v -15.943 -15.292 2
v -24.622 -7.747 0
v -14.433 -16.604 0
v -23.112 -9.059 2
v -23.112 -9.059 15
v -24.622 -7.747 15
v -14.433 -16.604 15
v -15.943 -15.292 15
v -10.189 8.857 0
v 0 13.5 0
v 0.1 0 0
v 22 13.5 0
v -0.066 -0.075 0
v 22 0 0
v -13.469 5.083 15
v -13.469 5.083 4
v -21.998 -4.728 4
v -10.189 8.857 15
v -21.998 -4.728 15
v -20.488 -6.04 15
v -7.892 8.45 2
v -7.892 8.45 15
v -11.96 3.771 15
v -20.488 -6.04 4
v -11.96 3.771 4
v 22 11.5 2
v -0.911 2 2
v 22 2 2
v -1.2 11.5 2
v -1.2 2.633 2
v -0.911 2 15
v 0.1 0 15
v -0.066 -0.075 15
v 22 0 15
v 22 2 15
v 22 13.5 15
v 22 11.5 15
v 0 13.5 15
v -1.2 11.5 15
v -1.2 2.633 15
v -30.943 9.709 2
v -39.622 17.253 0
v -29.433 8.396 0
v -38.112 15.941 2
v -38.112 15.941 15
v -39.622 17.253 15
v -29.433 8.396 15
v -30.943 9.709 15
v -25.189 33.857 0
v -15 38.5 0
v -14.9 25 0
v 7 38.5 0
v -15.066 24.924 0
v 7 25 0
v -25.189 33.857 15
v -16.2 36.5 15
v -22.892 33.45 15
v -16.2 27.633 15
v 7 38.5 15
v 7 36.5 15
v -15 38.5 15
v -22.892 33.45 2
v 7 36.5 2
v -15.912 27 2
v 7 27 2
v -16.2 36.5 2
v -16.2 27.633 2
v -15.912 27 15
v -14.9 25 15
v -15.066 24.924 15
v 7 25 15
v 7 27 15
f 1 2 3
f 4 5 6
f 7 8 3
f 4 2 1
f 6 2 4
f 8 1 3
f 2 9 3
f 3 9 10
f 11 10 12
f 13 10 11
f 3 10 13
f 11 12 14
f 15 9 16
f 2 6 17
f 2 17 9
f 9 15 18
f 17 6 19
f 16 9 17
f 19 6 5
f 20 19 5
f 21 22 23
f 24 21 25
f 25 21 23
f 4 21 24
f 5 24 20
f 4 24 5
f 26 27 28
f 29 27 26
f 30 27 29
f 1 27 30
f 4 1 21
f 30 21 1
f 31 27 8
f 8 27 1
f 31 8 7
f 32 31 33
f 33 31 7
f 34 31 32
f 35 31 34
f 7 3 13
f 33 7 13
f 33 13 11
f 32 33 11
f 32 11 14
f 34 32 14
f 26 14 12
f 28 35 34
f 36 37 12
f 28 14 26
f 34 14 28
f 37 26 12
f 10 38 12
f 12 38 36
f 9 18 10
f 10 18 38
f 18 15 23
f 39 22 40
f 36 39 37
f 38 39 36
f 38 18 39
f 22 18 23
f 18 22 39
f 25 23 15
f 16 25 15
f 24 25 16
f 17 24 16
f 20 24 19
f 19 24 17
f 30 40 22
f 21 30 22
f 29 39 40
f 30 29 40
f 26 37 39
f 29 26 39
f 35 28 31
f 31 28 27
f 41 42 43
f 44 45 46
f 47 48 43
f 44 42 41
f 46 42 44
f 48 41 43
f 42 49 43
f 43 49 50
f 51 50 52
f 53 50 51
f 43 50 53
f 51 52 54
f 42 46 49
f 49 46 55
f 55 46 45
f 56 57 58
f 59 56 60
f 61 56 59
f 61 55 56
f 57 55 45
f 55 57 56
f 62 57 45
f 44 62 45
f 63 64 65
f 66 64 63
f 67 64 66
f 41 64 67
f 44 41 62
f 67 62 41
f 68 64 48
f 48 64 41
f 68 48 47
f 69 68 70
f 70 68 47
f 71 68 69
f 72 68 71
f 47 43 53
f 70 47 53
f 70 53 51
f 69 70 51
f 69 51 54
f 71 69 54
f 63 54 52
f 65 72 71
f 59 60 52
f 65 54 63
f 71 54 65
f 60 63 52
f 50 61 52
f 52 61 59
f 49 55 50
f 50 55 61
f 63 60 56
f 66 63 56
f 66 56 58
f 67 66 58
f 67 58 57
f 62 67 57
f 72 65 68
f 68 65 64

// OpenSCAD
angle=131;
height=11;
length=22;
width=9.5;
t=2;
tt=t*2;

plugOffset=5;
heightToPlug=2;
plugWidth=13;

module monitorBracket(plug) {
    difference() {
        union() {
            cube([length, width+tt, height+tt], center=false);

            rotate(a=[0,0,-angle])
            translate([0,-width-tt,0])
            cube([length, width+tt, height+tt], center=false);

            hull(){
                cube([0.1, width+tt, height+tt], center=false);

                rotate(a=[0,0,-angle])
                translate([0,-width-tt,0])
                cube([0.1, width+tt, height+tt], center=false);
            }
        }

        translate([-1.2, t, t])
        cube([length*2, width, height*2], center=false);

        rotate(a=[0,0,-angle])
        translate([-1.2,-width-t,t])
        cube([length*2, width, height*2], center=false);

        if(plug) {
            rotate(a=[0,0,-angle])
            translate([plugOffset, -width-tt-1, t+heightToPlug])
            cube([plugWidth, width+1, height*2], center=false);
        }
    

    }
}

monitorBracket(1);

translate([-15,25,0])
monitorBracket(0);
